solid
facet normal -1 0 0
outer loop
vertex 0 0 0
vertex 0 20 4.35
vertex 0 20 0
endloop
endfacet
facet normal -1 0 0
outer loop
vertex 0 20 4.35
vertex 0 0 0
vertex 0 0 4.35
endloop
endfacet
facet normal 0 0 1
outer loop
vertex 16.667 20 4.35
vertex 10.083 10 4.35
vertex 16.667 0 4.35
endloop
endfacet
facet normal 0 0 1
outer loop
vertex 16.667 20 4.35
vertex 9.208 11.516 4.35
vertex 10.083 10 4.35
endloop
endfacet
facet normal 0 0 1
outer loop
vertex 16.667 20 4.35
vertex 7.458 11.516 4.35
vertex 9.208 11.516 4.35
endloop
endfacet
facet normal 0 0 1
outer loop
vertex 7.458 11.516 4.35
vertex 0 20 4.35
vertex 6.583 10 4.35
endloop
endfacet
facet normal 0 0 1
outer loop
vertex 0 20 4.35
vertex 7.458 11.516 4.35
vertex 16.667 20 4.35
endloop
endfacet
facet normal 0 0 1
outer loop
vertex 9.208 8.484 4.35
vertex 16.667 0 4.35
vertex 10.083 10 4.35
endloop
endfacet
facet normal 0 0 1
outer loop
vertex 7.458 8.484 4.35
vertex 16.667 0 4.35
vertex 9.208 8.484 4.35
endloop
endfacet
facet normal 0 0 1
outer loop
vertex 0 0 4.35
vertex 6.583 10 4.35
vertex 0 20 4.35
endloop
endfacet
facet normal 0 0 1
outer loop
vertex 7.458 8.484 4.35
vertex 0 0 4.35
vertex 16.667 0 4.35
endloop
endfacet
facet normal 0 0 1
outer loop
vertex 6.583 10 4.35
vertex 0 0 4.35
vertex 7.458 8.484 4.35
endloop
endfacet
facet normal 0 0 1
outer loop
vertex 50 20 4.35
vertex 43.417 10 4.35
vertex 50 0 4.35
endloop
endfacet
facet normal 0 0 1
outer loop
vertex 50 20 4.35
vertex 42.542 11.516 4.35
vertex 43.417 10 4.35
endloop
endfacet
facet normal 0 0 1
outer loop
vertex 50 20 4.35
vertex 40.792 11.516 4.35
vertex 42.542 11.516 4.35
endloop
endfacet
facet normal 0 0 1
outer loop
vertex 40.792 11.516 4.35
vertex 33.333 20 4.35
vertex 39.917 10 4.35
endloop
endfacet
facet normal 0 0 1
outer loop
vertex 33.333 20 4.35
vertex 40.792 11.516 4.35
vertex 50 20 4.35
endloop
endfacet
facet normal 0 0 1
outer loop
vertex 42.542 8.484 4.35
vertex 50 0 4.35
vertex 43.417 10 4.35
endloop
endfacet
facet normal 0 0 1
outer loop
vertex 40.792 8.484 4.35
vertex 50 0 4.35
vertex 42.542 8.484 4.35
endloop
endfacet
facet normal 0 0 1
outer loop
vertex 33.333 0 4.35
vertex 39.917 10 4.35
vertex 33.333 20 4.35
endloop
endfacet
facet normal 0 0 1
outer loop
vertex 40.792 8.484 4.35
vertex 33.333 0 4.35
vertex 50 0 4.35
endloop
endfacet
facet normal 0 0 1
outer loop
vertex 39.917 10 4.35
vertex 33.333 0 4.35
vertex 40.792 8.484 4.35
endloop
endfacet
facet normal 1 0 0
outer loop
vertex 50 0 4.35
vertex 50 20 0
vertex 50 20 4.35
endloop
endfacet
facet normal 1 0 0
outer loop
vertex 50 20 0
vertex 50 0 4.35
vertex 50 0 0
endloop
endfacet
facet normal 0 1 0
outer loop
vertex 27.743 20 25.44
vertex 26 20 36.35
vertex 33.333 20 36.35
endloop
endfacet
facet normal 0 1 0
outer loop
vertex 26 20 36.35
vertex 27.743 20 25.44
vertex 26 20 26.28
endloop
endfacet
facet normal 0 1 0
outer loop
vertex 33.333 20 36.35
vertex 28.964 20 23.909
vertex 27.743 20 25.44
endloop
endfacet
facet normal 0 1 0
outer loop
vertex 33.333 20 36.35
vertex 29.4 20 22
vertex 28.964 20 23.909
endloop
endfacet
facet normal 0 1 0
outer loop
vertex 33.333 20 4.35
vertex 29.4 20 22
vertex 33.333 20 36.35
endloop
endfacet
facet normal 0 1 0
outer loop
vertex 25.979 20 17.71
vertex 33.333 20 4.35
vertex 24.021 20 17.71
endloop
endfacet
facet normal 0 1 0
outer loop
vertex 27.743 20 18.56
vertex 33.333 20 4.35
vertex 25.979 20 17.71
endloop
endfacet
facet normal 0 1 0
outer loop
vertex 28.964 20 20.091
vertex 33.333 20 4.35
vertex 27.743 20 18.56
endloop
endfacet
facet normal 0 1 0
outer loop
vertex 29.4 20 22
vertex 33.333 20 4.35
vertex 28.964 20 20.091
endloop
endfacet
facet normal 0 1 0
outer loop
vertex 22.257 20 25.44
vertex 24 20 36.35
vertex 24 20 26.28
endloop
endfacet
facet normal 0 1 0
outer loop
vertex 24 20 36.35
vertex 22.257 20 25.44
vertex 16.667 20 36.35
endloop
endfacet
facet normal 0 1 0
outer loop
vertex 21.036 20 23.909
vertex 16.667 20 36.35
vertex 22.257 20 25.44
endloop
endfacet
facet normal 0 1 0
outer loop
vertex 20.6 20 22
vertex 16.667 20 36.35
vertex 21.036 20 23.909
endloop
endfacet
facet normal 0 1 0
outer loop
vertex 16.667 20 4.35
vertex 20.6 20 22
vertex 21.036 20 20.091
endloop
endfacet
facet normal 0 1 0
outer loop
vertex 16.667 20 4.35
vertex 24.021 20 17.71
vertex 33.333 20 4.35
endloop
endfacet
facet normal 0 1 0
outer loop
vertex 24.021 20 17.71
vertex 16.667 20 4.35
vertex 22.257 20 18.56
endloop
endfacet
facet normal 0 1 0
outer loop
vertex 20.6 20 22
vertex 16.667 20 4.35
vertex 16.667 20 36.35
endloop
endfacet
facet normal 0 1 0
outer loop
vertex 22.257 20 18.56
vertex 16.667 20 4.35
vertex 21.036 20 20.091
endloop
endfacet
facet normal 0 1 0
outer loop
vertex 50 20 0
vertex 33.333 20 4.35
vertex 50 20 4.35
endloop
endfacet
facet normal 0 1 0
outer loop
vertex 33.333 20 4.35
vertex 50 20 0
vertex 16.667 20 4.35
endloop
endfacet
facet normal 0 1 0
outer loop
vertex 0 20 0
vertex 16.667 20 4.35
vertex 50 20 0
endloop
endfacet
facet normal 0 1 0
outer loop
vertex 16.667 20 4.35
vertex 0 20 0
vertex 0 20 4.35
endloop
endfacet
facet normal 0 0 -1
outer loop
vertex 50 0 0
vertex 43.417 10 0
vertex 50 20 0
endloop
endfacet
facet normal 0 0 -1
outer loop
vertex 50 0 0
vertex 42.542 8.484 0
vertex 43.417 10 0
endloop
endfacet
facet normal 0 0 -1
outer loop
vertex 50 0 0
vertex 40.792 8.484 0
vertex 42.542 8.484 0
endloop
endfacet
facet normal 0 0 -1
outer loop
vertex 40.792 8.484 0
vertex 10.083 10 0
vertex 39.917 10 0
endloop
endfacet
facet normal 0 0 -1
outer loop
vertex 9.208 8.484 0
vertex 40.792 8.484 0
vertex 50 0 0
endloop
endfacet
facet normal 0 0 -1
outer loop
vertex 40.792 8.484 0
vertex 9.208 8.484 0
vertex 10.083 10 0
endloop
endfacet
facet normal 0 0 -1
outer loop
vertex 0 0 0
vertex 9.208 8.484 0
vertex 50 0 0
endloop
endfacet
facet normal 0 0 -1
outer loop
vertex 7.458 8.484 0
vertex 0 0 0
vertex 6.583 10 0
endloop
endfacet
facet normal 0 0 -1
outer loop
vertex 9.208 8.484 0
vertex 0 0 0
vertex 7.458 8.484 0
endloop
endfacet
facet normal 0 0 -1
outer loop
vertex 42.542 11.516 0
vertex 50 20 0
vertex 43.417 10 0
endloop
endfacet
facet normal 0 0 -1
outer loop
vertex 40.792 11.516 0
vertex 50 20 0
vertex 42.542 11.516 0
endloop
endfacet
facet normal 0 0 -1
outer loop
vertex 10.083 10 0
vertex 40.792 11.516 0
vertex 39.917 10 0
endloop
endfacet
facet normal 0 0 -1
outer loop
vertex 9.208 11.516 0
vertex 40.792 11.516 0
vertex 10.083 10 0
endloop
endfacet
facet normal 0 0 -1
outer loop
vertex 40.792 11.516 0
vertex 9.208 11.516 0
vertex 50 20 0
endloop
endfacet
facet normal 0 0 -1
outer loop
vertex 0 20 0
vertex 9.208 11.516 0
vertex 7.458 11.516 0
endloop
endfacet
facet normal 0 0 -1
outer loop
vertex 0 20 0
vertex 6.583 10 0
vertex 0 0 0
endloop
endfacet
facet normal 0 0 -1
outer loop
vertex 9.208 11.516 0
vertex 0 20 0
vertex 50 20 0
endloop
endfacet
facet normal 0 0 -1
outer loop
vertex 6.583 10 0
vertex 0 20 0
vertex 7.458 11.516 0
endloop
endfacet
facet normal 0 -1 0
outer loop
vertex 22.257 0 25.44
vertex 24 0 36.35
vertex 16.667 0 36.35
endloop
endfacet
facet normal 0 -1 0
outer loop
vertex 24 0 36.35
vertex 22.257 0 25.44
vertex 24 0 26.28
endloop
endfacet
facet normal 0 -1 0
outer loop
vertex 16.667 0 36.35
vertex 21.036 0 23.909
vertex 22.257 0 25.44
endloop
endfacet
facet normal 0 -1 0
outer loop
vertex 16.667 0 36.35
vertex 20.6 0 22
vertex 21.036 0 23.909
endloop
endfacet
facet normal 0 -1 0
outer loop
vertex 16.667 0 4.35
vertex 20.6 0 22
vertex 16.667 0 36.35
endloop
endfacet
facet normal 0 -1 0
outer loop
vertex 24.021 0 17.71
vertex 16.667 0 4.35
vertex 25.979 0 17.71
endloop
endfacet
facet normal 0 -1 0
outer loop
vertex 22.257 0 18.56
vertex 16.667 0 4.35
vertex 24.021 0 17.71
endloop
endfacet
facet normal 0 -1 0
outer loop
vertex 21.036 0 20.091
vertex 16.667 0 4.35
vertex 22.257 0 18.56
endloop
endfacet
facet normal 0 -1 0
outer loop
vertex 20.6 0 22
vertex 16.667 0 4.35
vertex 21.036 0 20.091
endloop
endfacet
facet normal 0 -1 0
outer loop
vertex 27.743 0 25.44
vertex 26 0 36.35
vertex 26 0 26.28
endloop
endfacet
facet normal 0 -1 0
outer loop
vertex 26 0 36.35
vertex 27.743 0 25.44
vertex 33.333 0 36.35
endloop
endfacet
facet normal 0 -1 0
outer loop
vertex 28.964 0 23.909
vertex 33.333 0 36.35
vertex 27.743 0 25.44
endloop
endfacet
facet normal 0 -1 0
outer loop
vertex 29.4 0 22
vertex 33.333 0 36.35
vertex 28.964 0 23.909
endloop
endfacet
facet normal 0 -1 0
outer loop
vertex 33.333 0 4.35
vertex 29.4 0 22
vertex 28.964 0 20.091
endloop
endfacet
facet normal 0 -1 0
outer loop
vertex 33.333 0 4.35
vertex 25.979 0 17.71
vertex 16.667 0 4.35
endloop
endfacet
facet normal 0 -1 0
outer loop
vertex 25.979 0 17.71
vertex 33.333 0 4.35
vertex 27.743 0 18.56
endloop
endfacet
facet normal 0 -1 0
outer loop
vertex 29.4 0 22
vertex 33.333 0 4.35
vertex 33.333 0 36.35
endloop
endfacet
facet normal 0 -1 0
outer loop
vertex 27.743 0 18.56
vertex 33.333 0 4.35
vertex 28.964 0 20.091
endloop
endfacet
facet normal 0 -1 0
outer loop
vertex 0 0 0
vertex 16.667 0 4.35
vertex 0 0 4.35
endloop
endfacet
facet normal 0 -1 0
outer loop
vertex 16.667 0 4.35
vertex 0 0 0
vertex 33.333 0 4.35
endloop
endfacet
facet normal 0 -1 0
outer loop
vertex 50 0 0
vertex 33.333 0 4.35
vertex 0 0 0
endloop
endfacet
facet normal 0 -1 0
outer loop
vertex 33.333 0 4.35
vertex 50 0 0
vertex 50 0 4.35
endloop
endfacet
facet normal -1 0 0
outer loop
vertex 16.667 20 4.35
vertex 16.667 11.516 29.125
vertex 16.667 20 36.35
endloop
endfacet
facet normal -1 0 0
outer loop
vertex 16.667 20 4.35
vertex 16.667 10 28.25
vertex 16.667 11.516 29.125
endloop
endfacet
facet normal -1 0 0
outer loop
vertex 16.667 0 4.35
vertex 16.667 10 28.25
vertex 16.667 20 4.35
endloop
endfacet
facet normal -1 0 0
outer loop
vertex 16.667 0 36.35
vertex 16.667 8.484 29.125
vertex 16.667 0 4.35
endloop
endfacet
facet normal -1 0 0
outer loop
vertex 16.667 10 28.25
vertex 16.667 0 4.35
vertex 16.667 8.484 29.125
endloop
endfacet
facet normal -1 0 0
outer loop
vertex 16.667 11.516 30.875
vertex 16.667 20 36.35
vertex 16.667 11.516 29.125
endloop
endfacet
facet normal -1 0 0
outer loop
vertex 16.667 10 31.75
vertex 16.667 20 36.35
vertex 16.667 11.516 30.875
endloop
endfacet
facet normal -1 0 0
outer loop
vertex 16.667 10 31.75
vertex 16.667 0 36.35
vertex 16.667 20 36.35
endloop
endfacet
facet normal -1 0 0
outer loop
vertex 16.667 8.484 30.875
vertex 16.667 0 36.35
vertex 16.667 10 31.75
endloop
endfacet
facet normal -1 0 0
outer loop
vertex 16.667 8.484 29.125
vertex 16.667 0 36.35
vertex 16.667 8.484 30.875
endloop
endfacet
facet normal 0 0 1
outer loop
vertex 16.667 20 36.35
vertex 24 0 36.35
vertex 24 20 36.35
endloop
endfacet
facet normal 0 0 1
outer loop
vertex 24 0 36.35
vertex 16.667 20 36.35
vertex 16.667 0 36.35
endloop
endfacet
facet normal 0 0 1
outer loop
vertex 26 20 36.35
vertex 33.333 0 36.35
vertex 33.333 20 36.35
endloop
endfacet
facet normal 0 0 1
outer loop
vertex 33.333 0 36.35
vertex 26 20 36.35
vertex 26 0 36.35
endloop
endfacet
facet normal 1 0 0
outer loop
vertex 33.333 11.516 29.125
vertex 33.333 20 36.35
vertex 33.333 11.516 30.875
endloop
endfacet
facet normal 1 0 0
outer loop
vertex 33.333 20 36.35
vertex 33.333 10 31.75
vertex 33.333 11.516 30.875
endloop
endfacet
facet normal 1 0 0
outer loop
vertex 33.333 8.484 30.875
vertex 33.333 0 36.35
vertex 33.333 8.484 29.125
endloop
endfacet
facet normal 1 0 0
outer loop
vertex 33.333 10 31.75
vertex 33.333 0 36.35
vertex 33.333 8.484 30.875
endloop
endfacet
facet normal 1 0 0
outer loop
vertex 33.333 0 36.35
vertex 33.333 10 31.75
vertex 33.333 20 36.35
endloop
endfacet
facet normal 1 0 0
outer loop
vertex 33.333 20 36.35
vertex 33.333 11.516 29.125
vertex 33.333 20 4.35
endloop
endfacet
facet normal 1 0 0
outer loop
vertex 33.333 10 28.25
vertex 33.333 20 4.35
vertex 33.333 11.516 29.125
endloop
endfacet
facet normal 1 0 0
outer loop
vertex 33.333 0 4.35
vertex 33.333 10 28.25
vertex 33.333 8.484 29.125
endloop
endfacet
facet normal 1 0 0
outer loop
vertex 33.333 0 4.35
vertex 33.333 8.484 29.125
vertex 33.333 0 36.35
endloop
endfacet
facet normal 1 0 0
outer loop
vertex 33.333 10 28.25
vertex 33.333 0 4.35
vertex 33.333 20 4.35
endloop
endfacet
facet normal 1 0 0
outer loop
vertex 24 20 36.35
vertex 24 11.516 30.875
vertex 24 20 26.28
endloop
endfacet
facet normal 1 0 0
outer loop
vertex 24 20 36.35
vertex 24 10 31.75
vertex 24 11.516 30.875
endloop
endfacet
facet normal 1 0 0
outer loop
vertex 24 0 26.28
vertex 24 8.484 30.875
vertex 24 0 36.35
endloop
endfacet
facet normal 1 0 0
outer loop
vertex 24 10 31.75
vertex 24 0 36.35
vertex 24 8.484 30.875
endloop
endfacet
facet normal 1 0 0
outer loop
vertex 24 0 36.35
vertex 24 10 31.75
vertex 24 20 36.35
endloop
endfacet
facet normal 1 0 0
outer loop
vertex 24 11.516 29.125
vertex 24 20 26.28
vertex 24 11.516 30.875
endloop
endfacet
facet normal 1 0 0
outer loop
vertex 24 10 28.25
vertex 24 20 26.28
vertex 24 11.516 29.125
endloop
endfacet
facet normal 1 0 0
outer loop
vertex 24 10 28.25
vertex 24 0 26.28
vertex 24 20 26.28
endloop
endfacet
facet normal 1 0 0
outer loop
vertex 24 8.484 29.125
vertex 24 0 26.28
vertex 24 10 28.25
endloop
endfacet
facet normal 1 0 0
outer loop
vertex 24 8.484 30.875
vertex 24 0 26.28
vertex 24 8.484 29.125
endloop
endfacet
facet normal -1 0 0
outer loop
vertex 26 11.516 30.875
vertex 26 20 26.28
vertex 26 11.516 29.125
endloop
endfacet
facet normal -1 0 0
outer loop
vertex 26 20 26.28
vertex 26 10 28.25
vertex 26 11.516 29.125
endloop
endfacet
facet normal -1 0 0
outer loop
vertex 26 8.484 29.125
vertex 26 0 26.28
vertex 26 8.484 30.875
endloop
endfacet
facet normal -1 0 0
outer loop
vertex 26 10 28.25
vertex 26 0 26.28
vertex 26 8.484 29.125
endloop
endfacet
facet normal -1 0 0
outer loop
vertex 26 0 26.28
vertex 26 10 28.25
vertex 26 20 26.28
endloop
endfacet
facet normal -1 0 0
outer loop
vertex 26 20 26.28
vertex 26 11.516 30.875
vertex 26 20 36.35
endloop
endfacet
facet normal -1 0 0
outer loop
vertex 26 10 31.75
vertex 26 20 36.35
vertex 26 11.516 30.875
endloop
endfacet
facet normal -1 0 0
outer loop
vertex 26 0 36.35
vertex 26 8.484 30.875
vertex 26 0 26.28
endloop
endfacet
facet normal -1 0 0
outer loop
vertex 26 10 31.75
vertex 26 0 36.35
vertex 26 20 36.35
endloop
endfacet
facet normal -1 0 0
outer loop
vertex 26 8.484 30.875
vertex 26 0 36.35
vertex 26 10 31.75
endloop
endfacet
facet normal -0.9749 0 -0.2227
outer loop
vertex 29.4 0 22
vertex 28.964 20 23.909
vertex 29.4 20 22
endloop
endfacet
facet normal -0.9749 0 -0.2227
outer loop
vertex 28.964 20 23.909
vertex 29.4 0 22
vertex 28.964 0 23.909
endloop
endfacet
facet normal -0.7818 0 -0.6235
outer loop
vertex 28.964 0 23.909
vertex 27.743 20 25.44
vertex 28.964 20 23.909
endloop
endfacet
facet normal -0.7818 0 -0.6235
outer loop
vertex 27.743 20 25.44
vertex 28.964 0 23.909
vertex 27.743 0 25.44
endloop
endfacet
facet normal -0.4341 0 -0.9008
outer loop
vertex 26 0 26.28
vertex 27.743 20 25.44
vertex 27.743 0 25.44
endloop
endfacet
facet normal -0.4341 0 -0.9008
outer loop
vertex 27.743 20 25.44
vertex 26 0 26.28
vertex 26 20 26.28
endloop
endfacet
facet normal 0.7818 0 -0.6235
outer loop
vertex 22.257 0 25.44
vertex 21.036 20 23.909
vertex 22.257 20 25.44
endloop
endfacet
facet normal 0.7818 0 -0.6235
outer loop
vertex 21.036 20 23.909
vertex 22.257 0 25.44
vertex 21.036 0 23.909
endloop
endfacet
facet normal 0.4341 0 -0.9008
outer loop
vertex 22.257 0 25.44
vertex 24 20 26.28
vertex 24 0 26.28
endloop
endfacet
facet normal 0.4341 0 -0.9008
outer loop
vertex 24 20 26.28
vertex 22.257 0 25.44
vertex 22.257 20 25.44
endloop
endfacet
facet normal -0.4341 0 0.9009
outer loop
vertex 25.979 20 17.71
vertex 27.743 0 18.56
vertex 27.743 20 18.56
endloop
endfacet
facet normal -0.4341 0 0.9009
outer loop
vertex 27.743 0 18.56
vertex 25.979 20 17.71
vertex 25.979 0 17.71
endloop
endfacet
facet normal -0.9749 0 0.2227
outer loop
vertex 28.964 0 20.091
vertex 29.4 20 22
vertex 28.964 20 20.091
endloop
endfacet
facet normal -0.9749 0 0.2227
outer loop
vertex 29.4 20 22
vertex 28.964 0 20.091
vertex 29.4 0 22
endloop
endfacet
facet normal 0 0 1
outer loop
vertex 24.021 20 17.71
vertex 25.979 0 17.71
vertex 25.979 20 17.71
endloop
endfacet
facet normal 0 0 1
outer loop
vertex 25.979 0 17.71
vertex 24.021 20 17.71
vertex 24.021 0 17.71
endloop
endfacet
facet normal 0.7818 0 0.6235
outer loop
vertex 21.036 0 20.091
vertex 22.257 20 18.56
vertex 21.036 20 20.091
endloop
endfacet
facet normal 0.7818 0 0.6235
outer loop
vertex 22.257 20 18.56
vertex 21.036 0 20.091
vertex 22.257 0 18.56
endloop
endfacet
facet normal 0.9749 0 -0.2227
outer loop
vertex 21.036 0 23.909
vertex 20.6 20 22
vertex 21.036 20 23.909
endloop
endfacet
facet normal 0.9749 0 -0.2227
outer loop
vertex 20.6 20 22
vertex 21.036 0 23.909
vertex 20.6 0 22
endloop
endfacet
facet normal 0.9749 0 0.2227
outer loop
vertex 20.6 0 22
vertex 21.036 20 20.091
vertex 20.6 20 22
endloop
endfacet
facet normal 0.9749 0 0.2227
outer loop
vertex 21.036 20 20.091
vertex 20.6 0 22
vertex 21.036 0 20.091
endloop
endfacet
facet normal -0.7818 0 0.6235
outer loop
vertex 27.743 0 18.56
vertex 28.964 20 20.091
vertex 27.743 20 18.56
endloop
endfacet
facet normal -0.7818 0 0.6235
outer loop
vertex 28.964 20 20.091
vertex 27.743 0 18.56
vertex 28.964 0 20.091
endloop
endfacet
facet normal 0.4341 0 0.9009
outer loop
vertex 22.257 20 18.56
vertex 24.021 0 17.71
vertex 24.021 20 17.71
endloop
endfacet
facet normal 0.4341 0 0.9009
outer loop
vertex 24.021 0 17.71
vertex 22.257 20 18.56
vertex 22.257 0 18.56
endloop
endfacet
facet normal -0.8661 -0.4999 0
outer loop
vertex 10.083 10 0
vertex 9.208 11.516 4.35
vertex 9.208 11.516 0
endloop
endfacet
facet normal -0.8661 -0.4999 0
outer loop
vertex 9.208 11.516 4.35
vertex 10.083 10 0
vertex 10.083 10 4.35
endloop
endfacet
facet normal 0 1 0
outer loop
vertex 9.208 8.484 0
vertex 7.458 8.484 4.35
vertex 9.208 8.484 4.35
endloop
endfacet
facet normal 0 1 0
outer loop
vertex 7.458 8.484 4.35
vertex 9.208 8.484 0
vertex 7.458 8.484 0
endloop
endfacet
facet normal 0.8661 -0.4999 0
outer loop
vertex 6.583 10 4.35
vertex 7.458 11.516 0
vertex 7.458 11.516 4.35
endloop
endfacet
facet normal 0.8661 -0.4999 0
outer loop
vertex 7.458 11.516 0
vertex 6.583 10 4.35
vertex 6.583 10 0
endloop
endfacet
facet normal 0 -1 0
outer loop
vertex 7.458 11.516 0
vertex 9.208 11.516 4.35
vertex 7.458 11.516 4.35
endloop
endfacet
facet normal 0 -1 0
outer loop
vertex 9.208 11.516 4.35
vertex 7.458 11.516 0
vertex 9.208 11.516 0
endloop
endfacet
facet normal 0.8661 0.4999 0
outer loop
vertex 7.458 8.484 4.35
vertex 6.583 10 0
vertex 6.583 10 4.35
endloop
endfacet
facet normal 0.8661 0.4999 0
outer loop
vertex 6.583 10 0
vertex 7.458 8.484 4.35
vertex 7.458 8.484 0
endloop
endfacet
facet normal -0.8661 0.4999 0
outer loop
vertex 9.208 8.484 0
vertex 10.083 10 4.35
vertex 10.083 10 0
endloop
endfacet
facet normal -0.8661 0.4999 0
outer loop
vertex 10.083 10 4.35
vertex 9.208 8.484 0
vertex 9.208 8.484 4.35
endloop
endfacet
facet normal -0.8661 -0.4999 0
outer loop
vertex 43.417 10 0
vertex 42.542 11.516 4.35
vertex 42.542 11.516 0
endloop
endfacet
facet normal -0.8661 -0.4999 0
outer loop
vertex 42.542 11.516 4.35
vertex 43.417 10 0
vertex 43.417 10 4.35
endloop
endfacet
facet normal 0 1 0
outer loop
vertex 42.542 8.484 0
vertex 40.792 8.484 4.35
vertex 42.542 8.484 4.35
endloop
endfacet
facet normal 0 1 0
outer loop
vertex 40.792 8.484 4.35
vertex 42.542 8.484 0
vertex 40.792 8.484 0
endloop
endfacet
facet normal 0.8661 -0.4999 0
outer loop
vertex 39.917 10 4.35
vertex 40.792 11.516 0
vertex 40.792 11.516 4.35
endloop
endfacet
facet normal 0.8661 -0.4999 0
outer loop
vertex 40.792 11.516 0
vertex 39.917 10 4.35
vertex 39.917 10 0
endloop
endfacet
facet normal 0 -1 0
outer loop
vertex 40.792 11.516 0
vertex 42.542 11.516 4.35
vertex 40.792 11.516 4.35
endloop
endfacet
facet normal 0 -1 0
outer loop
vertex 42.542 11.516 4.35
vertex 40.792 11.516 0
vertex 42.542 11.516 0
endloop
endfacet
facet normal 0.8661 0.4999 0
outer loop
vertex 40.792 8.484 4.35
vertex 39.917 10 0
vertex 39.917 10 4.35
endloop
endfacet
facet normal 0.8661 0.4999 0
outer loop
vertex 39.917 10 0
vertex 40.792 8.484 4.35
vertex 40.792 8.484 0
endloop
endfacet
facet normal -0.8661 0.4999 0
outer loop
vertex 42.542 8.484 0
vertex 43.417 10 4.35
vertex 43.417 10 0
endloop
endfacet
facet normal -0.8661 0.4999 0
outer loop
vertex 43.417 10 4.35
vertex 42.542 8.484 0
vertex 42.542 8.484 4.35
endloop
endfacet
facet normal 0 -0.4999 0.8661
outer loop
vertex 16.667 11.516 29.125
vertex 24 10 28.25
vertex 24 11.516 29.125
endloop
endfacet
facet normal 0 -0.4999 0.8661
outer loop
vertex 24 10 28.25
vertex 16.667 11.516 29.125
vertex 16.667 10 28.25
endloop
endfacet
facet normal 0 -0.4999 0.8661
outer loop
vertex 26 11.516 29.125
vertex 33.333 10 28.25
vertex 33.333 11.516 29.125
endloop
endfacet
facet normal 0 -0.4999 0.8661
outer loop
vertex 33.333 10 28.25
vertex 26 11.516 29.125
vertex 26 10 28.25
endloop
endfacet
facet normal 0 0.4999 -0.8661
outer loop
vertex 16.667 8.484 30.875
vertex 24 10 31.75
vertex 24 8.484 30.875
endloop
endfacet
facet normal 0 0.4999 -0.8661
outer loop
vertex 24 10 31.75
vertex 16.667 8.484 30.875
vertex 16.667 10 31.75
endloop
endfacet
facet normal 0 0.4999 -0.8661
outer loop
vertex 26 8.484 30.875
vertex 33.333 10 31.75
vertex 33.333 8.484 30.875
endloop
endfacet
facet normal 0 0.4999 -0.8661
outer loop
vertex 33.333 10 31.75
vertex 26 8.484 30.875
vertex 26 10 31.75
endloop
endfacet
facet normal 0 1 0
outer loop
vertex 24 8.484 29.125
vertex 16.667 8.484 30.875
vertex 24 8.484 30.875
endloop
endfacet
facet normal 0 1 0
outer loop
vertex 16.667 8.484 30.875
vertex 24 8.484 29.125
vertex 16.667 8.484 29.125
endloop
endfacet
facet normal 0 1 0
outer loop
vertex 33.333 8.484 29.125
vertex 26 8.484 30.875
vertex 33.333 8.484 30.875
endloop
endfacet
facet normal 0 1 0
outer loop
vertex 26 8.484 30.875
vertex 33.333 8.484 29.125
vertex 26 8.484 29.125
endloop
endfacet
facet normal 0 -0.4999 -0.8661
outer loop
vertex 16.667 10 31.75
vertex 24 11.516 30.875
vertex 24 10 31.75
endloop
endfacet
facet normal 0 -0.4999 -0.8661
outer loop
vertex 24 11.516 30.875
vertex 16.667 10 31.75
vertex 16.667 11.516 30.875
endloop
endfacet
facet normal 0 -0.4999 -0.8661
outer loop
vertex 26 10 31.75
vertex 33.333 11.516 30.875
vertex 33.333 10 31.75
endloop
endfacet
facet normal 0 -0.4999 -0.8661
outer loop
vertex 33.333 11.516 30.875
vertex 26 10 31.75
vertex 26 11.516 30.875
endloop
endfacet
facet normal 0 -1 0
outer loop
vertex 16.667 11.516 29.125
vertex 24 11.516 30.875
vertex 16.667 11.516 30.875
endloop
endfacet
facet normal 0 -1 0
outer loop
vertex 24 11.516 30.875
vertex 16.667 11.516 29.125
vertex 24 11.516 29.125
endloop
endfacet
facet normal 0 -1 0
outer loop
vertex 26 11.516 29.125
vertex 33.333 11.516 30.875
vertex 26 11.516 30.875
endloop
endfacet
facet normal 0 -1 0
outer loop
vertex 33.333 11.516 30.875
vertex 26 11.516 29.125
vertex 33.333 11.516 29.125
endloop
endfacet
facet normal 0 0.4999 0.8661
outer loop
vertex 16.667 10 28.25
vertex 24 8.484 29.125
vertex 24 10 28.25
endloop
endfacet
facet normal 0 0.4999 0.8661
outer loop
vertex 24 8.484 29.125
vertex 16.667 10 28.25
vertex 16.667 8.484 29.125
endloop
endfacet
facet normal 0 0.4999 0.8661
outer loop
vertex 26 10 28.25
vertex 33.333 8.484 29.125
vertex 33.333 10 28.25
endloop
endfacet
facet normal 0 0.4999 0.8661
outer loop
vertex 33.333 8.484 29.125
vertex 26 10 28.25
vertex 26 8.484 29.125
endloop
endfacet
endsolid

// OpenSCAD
// extrusion 20X20
ex_h = 20;

// screw M3
screw_d = 3+0.5;

// Rod 8mm
rod_d = 8+0.8;

// support
sup_base_h = 4.35;
sup_base_w = 50;
sup_rod_h = 22;
sup_rod_d = 20;
sup_rod_w = sup_base_w/3;
sup_hole_w = 2;

difference(){
union(){
    cube([sup_base_w,ex_h,sup_base_h]);
    translate([sup_base_w/2,sup_rod_d/2,sup_rod_h/2+5+sup_base_h])
    cube([sup_rod_w,sup_rod_d,sup_rod_h+10],true);
}
union(){
    // rod hole
    translate([sup_base_w/2,0.5*sup_rod_d,sup_rod_h+10]) 
    cube([sup_hole_w,2*sup_rod_d,sup_rod_h],true);

    translate([sup_base_w/2,sup_rod_d*1.5,sup_rod_h]) rotate([90,0,0]) 
    cylinder(d=rod_d,h=sup_rod_d*2);
    
    // screw hole Base
    translate([1/6*sup_base_w,ex_h/2,-sup_base_h])
    cylinder(h=sup_base_h*3,d=screw_d);
    
    translate([5/6*sup_base_w,ex_h/2,-sup_base_h])
    cylinder(h=sup_base_h*3,d=screw_d);
    
    // Screw hole top
    //translate([0,1/6*sup_rod_d,sup_rod_h+8]) rotate([0,90,0])
    //cylinder(h=sup_rod_w*3,d=screw_d);
    
    translate([0,3/6*sup_rod_d,sup_rod_h+8]) rotate([0,90,0])
    cylinder(h=sup_rod_w*3,d=screw_d);
    
    //translate([0,5/6*sup_rod_d,sup_rod_h+8]) rotate([0,90,0])
    //cylinder(h=sup_rod_w*3,d=screw_d);
}
}
